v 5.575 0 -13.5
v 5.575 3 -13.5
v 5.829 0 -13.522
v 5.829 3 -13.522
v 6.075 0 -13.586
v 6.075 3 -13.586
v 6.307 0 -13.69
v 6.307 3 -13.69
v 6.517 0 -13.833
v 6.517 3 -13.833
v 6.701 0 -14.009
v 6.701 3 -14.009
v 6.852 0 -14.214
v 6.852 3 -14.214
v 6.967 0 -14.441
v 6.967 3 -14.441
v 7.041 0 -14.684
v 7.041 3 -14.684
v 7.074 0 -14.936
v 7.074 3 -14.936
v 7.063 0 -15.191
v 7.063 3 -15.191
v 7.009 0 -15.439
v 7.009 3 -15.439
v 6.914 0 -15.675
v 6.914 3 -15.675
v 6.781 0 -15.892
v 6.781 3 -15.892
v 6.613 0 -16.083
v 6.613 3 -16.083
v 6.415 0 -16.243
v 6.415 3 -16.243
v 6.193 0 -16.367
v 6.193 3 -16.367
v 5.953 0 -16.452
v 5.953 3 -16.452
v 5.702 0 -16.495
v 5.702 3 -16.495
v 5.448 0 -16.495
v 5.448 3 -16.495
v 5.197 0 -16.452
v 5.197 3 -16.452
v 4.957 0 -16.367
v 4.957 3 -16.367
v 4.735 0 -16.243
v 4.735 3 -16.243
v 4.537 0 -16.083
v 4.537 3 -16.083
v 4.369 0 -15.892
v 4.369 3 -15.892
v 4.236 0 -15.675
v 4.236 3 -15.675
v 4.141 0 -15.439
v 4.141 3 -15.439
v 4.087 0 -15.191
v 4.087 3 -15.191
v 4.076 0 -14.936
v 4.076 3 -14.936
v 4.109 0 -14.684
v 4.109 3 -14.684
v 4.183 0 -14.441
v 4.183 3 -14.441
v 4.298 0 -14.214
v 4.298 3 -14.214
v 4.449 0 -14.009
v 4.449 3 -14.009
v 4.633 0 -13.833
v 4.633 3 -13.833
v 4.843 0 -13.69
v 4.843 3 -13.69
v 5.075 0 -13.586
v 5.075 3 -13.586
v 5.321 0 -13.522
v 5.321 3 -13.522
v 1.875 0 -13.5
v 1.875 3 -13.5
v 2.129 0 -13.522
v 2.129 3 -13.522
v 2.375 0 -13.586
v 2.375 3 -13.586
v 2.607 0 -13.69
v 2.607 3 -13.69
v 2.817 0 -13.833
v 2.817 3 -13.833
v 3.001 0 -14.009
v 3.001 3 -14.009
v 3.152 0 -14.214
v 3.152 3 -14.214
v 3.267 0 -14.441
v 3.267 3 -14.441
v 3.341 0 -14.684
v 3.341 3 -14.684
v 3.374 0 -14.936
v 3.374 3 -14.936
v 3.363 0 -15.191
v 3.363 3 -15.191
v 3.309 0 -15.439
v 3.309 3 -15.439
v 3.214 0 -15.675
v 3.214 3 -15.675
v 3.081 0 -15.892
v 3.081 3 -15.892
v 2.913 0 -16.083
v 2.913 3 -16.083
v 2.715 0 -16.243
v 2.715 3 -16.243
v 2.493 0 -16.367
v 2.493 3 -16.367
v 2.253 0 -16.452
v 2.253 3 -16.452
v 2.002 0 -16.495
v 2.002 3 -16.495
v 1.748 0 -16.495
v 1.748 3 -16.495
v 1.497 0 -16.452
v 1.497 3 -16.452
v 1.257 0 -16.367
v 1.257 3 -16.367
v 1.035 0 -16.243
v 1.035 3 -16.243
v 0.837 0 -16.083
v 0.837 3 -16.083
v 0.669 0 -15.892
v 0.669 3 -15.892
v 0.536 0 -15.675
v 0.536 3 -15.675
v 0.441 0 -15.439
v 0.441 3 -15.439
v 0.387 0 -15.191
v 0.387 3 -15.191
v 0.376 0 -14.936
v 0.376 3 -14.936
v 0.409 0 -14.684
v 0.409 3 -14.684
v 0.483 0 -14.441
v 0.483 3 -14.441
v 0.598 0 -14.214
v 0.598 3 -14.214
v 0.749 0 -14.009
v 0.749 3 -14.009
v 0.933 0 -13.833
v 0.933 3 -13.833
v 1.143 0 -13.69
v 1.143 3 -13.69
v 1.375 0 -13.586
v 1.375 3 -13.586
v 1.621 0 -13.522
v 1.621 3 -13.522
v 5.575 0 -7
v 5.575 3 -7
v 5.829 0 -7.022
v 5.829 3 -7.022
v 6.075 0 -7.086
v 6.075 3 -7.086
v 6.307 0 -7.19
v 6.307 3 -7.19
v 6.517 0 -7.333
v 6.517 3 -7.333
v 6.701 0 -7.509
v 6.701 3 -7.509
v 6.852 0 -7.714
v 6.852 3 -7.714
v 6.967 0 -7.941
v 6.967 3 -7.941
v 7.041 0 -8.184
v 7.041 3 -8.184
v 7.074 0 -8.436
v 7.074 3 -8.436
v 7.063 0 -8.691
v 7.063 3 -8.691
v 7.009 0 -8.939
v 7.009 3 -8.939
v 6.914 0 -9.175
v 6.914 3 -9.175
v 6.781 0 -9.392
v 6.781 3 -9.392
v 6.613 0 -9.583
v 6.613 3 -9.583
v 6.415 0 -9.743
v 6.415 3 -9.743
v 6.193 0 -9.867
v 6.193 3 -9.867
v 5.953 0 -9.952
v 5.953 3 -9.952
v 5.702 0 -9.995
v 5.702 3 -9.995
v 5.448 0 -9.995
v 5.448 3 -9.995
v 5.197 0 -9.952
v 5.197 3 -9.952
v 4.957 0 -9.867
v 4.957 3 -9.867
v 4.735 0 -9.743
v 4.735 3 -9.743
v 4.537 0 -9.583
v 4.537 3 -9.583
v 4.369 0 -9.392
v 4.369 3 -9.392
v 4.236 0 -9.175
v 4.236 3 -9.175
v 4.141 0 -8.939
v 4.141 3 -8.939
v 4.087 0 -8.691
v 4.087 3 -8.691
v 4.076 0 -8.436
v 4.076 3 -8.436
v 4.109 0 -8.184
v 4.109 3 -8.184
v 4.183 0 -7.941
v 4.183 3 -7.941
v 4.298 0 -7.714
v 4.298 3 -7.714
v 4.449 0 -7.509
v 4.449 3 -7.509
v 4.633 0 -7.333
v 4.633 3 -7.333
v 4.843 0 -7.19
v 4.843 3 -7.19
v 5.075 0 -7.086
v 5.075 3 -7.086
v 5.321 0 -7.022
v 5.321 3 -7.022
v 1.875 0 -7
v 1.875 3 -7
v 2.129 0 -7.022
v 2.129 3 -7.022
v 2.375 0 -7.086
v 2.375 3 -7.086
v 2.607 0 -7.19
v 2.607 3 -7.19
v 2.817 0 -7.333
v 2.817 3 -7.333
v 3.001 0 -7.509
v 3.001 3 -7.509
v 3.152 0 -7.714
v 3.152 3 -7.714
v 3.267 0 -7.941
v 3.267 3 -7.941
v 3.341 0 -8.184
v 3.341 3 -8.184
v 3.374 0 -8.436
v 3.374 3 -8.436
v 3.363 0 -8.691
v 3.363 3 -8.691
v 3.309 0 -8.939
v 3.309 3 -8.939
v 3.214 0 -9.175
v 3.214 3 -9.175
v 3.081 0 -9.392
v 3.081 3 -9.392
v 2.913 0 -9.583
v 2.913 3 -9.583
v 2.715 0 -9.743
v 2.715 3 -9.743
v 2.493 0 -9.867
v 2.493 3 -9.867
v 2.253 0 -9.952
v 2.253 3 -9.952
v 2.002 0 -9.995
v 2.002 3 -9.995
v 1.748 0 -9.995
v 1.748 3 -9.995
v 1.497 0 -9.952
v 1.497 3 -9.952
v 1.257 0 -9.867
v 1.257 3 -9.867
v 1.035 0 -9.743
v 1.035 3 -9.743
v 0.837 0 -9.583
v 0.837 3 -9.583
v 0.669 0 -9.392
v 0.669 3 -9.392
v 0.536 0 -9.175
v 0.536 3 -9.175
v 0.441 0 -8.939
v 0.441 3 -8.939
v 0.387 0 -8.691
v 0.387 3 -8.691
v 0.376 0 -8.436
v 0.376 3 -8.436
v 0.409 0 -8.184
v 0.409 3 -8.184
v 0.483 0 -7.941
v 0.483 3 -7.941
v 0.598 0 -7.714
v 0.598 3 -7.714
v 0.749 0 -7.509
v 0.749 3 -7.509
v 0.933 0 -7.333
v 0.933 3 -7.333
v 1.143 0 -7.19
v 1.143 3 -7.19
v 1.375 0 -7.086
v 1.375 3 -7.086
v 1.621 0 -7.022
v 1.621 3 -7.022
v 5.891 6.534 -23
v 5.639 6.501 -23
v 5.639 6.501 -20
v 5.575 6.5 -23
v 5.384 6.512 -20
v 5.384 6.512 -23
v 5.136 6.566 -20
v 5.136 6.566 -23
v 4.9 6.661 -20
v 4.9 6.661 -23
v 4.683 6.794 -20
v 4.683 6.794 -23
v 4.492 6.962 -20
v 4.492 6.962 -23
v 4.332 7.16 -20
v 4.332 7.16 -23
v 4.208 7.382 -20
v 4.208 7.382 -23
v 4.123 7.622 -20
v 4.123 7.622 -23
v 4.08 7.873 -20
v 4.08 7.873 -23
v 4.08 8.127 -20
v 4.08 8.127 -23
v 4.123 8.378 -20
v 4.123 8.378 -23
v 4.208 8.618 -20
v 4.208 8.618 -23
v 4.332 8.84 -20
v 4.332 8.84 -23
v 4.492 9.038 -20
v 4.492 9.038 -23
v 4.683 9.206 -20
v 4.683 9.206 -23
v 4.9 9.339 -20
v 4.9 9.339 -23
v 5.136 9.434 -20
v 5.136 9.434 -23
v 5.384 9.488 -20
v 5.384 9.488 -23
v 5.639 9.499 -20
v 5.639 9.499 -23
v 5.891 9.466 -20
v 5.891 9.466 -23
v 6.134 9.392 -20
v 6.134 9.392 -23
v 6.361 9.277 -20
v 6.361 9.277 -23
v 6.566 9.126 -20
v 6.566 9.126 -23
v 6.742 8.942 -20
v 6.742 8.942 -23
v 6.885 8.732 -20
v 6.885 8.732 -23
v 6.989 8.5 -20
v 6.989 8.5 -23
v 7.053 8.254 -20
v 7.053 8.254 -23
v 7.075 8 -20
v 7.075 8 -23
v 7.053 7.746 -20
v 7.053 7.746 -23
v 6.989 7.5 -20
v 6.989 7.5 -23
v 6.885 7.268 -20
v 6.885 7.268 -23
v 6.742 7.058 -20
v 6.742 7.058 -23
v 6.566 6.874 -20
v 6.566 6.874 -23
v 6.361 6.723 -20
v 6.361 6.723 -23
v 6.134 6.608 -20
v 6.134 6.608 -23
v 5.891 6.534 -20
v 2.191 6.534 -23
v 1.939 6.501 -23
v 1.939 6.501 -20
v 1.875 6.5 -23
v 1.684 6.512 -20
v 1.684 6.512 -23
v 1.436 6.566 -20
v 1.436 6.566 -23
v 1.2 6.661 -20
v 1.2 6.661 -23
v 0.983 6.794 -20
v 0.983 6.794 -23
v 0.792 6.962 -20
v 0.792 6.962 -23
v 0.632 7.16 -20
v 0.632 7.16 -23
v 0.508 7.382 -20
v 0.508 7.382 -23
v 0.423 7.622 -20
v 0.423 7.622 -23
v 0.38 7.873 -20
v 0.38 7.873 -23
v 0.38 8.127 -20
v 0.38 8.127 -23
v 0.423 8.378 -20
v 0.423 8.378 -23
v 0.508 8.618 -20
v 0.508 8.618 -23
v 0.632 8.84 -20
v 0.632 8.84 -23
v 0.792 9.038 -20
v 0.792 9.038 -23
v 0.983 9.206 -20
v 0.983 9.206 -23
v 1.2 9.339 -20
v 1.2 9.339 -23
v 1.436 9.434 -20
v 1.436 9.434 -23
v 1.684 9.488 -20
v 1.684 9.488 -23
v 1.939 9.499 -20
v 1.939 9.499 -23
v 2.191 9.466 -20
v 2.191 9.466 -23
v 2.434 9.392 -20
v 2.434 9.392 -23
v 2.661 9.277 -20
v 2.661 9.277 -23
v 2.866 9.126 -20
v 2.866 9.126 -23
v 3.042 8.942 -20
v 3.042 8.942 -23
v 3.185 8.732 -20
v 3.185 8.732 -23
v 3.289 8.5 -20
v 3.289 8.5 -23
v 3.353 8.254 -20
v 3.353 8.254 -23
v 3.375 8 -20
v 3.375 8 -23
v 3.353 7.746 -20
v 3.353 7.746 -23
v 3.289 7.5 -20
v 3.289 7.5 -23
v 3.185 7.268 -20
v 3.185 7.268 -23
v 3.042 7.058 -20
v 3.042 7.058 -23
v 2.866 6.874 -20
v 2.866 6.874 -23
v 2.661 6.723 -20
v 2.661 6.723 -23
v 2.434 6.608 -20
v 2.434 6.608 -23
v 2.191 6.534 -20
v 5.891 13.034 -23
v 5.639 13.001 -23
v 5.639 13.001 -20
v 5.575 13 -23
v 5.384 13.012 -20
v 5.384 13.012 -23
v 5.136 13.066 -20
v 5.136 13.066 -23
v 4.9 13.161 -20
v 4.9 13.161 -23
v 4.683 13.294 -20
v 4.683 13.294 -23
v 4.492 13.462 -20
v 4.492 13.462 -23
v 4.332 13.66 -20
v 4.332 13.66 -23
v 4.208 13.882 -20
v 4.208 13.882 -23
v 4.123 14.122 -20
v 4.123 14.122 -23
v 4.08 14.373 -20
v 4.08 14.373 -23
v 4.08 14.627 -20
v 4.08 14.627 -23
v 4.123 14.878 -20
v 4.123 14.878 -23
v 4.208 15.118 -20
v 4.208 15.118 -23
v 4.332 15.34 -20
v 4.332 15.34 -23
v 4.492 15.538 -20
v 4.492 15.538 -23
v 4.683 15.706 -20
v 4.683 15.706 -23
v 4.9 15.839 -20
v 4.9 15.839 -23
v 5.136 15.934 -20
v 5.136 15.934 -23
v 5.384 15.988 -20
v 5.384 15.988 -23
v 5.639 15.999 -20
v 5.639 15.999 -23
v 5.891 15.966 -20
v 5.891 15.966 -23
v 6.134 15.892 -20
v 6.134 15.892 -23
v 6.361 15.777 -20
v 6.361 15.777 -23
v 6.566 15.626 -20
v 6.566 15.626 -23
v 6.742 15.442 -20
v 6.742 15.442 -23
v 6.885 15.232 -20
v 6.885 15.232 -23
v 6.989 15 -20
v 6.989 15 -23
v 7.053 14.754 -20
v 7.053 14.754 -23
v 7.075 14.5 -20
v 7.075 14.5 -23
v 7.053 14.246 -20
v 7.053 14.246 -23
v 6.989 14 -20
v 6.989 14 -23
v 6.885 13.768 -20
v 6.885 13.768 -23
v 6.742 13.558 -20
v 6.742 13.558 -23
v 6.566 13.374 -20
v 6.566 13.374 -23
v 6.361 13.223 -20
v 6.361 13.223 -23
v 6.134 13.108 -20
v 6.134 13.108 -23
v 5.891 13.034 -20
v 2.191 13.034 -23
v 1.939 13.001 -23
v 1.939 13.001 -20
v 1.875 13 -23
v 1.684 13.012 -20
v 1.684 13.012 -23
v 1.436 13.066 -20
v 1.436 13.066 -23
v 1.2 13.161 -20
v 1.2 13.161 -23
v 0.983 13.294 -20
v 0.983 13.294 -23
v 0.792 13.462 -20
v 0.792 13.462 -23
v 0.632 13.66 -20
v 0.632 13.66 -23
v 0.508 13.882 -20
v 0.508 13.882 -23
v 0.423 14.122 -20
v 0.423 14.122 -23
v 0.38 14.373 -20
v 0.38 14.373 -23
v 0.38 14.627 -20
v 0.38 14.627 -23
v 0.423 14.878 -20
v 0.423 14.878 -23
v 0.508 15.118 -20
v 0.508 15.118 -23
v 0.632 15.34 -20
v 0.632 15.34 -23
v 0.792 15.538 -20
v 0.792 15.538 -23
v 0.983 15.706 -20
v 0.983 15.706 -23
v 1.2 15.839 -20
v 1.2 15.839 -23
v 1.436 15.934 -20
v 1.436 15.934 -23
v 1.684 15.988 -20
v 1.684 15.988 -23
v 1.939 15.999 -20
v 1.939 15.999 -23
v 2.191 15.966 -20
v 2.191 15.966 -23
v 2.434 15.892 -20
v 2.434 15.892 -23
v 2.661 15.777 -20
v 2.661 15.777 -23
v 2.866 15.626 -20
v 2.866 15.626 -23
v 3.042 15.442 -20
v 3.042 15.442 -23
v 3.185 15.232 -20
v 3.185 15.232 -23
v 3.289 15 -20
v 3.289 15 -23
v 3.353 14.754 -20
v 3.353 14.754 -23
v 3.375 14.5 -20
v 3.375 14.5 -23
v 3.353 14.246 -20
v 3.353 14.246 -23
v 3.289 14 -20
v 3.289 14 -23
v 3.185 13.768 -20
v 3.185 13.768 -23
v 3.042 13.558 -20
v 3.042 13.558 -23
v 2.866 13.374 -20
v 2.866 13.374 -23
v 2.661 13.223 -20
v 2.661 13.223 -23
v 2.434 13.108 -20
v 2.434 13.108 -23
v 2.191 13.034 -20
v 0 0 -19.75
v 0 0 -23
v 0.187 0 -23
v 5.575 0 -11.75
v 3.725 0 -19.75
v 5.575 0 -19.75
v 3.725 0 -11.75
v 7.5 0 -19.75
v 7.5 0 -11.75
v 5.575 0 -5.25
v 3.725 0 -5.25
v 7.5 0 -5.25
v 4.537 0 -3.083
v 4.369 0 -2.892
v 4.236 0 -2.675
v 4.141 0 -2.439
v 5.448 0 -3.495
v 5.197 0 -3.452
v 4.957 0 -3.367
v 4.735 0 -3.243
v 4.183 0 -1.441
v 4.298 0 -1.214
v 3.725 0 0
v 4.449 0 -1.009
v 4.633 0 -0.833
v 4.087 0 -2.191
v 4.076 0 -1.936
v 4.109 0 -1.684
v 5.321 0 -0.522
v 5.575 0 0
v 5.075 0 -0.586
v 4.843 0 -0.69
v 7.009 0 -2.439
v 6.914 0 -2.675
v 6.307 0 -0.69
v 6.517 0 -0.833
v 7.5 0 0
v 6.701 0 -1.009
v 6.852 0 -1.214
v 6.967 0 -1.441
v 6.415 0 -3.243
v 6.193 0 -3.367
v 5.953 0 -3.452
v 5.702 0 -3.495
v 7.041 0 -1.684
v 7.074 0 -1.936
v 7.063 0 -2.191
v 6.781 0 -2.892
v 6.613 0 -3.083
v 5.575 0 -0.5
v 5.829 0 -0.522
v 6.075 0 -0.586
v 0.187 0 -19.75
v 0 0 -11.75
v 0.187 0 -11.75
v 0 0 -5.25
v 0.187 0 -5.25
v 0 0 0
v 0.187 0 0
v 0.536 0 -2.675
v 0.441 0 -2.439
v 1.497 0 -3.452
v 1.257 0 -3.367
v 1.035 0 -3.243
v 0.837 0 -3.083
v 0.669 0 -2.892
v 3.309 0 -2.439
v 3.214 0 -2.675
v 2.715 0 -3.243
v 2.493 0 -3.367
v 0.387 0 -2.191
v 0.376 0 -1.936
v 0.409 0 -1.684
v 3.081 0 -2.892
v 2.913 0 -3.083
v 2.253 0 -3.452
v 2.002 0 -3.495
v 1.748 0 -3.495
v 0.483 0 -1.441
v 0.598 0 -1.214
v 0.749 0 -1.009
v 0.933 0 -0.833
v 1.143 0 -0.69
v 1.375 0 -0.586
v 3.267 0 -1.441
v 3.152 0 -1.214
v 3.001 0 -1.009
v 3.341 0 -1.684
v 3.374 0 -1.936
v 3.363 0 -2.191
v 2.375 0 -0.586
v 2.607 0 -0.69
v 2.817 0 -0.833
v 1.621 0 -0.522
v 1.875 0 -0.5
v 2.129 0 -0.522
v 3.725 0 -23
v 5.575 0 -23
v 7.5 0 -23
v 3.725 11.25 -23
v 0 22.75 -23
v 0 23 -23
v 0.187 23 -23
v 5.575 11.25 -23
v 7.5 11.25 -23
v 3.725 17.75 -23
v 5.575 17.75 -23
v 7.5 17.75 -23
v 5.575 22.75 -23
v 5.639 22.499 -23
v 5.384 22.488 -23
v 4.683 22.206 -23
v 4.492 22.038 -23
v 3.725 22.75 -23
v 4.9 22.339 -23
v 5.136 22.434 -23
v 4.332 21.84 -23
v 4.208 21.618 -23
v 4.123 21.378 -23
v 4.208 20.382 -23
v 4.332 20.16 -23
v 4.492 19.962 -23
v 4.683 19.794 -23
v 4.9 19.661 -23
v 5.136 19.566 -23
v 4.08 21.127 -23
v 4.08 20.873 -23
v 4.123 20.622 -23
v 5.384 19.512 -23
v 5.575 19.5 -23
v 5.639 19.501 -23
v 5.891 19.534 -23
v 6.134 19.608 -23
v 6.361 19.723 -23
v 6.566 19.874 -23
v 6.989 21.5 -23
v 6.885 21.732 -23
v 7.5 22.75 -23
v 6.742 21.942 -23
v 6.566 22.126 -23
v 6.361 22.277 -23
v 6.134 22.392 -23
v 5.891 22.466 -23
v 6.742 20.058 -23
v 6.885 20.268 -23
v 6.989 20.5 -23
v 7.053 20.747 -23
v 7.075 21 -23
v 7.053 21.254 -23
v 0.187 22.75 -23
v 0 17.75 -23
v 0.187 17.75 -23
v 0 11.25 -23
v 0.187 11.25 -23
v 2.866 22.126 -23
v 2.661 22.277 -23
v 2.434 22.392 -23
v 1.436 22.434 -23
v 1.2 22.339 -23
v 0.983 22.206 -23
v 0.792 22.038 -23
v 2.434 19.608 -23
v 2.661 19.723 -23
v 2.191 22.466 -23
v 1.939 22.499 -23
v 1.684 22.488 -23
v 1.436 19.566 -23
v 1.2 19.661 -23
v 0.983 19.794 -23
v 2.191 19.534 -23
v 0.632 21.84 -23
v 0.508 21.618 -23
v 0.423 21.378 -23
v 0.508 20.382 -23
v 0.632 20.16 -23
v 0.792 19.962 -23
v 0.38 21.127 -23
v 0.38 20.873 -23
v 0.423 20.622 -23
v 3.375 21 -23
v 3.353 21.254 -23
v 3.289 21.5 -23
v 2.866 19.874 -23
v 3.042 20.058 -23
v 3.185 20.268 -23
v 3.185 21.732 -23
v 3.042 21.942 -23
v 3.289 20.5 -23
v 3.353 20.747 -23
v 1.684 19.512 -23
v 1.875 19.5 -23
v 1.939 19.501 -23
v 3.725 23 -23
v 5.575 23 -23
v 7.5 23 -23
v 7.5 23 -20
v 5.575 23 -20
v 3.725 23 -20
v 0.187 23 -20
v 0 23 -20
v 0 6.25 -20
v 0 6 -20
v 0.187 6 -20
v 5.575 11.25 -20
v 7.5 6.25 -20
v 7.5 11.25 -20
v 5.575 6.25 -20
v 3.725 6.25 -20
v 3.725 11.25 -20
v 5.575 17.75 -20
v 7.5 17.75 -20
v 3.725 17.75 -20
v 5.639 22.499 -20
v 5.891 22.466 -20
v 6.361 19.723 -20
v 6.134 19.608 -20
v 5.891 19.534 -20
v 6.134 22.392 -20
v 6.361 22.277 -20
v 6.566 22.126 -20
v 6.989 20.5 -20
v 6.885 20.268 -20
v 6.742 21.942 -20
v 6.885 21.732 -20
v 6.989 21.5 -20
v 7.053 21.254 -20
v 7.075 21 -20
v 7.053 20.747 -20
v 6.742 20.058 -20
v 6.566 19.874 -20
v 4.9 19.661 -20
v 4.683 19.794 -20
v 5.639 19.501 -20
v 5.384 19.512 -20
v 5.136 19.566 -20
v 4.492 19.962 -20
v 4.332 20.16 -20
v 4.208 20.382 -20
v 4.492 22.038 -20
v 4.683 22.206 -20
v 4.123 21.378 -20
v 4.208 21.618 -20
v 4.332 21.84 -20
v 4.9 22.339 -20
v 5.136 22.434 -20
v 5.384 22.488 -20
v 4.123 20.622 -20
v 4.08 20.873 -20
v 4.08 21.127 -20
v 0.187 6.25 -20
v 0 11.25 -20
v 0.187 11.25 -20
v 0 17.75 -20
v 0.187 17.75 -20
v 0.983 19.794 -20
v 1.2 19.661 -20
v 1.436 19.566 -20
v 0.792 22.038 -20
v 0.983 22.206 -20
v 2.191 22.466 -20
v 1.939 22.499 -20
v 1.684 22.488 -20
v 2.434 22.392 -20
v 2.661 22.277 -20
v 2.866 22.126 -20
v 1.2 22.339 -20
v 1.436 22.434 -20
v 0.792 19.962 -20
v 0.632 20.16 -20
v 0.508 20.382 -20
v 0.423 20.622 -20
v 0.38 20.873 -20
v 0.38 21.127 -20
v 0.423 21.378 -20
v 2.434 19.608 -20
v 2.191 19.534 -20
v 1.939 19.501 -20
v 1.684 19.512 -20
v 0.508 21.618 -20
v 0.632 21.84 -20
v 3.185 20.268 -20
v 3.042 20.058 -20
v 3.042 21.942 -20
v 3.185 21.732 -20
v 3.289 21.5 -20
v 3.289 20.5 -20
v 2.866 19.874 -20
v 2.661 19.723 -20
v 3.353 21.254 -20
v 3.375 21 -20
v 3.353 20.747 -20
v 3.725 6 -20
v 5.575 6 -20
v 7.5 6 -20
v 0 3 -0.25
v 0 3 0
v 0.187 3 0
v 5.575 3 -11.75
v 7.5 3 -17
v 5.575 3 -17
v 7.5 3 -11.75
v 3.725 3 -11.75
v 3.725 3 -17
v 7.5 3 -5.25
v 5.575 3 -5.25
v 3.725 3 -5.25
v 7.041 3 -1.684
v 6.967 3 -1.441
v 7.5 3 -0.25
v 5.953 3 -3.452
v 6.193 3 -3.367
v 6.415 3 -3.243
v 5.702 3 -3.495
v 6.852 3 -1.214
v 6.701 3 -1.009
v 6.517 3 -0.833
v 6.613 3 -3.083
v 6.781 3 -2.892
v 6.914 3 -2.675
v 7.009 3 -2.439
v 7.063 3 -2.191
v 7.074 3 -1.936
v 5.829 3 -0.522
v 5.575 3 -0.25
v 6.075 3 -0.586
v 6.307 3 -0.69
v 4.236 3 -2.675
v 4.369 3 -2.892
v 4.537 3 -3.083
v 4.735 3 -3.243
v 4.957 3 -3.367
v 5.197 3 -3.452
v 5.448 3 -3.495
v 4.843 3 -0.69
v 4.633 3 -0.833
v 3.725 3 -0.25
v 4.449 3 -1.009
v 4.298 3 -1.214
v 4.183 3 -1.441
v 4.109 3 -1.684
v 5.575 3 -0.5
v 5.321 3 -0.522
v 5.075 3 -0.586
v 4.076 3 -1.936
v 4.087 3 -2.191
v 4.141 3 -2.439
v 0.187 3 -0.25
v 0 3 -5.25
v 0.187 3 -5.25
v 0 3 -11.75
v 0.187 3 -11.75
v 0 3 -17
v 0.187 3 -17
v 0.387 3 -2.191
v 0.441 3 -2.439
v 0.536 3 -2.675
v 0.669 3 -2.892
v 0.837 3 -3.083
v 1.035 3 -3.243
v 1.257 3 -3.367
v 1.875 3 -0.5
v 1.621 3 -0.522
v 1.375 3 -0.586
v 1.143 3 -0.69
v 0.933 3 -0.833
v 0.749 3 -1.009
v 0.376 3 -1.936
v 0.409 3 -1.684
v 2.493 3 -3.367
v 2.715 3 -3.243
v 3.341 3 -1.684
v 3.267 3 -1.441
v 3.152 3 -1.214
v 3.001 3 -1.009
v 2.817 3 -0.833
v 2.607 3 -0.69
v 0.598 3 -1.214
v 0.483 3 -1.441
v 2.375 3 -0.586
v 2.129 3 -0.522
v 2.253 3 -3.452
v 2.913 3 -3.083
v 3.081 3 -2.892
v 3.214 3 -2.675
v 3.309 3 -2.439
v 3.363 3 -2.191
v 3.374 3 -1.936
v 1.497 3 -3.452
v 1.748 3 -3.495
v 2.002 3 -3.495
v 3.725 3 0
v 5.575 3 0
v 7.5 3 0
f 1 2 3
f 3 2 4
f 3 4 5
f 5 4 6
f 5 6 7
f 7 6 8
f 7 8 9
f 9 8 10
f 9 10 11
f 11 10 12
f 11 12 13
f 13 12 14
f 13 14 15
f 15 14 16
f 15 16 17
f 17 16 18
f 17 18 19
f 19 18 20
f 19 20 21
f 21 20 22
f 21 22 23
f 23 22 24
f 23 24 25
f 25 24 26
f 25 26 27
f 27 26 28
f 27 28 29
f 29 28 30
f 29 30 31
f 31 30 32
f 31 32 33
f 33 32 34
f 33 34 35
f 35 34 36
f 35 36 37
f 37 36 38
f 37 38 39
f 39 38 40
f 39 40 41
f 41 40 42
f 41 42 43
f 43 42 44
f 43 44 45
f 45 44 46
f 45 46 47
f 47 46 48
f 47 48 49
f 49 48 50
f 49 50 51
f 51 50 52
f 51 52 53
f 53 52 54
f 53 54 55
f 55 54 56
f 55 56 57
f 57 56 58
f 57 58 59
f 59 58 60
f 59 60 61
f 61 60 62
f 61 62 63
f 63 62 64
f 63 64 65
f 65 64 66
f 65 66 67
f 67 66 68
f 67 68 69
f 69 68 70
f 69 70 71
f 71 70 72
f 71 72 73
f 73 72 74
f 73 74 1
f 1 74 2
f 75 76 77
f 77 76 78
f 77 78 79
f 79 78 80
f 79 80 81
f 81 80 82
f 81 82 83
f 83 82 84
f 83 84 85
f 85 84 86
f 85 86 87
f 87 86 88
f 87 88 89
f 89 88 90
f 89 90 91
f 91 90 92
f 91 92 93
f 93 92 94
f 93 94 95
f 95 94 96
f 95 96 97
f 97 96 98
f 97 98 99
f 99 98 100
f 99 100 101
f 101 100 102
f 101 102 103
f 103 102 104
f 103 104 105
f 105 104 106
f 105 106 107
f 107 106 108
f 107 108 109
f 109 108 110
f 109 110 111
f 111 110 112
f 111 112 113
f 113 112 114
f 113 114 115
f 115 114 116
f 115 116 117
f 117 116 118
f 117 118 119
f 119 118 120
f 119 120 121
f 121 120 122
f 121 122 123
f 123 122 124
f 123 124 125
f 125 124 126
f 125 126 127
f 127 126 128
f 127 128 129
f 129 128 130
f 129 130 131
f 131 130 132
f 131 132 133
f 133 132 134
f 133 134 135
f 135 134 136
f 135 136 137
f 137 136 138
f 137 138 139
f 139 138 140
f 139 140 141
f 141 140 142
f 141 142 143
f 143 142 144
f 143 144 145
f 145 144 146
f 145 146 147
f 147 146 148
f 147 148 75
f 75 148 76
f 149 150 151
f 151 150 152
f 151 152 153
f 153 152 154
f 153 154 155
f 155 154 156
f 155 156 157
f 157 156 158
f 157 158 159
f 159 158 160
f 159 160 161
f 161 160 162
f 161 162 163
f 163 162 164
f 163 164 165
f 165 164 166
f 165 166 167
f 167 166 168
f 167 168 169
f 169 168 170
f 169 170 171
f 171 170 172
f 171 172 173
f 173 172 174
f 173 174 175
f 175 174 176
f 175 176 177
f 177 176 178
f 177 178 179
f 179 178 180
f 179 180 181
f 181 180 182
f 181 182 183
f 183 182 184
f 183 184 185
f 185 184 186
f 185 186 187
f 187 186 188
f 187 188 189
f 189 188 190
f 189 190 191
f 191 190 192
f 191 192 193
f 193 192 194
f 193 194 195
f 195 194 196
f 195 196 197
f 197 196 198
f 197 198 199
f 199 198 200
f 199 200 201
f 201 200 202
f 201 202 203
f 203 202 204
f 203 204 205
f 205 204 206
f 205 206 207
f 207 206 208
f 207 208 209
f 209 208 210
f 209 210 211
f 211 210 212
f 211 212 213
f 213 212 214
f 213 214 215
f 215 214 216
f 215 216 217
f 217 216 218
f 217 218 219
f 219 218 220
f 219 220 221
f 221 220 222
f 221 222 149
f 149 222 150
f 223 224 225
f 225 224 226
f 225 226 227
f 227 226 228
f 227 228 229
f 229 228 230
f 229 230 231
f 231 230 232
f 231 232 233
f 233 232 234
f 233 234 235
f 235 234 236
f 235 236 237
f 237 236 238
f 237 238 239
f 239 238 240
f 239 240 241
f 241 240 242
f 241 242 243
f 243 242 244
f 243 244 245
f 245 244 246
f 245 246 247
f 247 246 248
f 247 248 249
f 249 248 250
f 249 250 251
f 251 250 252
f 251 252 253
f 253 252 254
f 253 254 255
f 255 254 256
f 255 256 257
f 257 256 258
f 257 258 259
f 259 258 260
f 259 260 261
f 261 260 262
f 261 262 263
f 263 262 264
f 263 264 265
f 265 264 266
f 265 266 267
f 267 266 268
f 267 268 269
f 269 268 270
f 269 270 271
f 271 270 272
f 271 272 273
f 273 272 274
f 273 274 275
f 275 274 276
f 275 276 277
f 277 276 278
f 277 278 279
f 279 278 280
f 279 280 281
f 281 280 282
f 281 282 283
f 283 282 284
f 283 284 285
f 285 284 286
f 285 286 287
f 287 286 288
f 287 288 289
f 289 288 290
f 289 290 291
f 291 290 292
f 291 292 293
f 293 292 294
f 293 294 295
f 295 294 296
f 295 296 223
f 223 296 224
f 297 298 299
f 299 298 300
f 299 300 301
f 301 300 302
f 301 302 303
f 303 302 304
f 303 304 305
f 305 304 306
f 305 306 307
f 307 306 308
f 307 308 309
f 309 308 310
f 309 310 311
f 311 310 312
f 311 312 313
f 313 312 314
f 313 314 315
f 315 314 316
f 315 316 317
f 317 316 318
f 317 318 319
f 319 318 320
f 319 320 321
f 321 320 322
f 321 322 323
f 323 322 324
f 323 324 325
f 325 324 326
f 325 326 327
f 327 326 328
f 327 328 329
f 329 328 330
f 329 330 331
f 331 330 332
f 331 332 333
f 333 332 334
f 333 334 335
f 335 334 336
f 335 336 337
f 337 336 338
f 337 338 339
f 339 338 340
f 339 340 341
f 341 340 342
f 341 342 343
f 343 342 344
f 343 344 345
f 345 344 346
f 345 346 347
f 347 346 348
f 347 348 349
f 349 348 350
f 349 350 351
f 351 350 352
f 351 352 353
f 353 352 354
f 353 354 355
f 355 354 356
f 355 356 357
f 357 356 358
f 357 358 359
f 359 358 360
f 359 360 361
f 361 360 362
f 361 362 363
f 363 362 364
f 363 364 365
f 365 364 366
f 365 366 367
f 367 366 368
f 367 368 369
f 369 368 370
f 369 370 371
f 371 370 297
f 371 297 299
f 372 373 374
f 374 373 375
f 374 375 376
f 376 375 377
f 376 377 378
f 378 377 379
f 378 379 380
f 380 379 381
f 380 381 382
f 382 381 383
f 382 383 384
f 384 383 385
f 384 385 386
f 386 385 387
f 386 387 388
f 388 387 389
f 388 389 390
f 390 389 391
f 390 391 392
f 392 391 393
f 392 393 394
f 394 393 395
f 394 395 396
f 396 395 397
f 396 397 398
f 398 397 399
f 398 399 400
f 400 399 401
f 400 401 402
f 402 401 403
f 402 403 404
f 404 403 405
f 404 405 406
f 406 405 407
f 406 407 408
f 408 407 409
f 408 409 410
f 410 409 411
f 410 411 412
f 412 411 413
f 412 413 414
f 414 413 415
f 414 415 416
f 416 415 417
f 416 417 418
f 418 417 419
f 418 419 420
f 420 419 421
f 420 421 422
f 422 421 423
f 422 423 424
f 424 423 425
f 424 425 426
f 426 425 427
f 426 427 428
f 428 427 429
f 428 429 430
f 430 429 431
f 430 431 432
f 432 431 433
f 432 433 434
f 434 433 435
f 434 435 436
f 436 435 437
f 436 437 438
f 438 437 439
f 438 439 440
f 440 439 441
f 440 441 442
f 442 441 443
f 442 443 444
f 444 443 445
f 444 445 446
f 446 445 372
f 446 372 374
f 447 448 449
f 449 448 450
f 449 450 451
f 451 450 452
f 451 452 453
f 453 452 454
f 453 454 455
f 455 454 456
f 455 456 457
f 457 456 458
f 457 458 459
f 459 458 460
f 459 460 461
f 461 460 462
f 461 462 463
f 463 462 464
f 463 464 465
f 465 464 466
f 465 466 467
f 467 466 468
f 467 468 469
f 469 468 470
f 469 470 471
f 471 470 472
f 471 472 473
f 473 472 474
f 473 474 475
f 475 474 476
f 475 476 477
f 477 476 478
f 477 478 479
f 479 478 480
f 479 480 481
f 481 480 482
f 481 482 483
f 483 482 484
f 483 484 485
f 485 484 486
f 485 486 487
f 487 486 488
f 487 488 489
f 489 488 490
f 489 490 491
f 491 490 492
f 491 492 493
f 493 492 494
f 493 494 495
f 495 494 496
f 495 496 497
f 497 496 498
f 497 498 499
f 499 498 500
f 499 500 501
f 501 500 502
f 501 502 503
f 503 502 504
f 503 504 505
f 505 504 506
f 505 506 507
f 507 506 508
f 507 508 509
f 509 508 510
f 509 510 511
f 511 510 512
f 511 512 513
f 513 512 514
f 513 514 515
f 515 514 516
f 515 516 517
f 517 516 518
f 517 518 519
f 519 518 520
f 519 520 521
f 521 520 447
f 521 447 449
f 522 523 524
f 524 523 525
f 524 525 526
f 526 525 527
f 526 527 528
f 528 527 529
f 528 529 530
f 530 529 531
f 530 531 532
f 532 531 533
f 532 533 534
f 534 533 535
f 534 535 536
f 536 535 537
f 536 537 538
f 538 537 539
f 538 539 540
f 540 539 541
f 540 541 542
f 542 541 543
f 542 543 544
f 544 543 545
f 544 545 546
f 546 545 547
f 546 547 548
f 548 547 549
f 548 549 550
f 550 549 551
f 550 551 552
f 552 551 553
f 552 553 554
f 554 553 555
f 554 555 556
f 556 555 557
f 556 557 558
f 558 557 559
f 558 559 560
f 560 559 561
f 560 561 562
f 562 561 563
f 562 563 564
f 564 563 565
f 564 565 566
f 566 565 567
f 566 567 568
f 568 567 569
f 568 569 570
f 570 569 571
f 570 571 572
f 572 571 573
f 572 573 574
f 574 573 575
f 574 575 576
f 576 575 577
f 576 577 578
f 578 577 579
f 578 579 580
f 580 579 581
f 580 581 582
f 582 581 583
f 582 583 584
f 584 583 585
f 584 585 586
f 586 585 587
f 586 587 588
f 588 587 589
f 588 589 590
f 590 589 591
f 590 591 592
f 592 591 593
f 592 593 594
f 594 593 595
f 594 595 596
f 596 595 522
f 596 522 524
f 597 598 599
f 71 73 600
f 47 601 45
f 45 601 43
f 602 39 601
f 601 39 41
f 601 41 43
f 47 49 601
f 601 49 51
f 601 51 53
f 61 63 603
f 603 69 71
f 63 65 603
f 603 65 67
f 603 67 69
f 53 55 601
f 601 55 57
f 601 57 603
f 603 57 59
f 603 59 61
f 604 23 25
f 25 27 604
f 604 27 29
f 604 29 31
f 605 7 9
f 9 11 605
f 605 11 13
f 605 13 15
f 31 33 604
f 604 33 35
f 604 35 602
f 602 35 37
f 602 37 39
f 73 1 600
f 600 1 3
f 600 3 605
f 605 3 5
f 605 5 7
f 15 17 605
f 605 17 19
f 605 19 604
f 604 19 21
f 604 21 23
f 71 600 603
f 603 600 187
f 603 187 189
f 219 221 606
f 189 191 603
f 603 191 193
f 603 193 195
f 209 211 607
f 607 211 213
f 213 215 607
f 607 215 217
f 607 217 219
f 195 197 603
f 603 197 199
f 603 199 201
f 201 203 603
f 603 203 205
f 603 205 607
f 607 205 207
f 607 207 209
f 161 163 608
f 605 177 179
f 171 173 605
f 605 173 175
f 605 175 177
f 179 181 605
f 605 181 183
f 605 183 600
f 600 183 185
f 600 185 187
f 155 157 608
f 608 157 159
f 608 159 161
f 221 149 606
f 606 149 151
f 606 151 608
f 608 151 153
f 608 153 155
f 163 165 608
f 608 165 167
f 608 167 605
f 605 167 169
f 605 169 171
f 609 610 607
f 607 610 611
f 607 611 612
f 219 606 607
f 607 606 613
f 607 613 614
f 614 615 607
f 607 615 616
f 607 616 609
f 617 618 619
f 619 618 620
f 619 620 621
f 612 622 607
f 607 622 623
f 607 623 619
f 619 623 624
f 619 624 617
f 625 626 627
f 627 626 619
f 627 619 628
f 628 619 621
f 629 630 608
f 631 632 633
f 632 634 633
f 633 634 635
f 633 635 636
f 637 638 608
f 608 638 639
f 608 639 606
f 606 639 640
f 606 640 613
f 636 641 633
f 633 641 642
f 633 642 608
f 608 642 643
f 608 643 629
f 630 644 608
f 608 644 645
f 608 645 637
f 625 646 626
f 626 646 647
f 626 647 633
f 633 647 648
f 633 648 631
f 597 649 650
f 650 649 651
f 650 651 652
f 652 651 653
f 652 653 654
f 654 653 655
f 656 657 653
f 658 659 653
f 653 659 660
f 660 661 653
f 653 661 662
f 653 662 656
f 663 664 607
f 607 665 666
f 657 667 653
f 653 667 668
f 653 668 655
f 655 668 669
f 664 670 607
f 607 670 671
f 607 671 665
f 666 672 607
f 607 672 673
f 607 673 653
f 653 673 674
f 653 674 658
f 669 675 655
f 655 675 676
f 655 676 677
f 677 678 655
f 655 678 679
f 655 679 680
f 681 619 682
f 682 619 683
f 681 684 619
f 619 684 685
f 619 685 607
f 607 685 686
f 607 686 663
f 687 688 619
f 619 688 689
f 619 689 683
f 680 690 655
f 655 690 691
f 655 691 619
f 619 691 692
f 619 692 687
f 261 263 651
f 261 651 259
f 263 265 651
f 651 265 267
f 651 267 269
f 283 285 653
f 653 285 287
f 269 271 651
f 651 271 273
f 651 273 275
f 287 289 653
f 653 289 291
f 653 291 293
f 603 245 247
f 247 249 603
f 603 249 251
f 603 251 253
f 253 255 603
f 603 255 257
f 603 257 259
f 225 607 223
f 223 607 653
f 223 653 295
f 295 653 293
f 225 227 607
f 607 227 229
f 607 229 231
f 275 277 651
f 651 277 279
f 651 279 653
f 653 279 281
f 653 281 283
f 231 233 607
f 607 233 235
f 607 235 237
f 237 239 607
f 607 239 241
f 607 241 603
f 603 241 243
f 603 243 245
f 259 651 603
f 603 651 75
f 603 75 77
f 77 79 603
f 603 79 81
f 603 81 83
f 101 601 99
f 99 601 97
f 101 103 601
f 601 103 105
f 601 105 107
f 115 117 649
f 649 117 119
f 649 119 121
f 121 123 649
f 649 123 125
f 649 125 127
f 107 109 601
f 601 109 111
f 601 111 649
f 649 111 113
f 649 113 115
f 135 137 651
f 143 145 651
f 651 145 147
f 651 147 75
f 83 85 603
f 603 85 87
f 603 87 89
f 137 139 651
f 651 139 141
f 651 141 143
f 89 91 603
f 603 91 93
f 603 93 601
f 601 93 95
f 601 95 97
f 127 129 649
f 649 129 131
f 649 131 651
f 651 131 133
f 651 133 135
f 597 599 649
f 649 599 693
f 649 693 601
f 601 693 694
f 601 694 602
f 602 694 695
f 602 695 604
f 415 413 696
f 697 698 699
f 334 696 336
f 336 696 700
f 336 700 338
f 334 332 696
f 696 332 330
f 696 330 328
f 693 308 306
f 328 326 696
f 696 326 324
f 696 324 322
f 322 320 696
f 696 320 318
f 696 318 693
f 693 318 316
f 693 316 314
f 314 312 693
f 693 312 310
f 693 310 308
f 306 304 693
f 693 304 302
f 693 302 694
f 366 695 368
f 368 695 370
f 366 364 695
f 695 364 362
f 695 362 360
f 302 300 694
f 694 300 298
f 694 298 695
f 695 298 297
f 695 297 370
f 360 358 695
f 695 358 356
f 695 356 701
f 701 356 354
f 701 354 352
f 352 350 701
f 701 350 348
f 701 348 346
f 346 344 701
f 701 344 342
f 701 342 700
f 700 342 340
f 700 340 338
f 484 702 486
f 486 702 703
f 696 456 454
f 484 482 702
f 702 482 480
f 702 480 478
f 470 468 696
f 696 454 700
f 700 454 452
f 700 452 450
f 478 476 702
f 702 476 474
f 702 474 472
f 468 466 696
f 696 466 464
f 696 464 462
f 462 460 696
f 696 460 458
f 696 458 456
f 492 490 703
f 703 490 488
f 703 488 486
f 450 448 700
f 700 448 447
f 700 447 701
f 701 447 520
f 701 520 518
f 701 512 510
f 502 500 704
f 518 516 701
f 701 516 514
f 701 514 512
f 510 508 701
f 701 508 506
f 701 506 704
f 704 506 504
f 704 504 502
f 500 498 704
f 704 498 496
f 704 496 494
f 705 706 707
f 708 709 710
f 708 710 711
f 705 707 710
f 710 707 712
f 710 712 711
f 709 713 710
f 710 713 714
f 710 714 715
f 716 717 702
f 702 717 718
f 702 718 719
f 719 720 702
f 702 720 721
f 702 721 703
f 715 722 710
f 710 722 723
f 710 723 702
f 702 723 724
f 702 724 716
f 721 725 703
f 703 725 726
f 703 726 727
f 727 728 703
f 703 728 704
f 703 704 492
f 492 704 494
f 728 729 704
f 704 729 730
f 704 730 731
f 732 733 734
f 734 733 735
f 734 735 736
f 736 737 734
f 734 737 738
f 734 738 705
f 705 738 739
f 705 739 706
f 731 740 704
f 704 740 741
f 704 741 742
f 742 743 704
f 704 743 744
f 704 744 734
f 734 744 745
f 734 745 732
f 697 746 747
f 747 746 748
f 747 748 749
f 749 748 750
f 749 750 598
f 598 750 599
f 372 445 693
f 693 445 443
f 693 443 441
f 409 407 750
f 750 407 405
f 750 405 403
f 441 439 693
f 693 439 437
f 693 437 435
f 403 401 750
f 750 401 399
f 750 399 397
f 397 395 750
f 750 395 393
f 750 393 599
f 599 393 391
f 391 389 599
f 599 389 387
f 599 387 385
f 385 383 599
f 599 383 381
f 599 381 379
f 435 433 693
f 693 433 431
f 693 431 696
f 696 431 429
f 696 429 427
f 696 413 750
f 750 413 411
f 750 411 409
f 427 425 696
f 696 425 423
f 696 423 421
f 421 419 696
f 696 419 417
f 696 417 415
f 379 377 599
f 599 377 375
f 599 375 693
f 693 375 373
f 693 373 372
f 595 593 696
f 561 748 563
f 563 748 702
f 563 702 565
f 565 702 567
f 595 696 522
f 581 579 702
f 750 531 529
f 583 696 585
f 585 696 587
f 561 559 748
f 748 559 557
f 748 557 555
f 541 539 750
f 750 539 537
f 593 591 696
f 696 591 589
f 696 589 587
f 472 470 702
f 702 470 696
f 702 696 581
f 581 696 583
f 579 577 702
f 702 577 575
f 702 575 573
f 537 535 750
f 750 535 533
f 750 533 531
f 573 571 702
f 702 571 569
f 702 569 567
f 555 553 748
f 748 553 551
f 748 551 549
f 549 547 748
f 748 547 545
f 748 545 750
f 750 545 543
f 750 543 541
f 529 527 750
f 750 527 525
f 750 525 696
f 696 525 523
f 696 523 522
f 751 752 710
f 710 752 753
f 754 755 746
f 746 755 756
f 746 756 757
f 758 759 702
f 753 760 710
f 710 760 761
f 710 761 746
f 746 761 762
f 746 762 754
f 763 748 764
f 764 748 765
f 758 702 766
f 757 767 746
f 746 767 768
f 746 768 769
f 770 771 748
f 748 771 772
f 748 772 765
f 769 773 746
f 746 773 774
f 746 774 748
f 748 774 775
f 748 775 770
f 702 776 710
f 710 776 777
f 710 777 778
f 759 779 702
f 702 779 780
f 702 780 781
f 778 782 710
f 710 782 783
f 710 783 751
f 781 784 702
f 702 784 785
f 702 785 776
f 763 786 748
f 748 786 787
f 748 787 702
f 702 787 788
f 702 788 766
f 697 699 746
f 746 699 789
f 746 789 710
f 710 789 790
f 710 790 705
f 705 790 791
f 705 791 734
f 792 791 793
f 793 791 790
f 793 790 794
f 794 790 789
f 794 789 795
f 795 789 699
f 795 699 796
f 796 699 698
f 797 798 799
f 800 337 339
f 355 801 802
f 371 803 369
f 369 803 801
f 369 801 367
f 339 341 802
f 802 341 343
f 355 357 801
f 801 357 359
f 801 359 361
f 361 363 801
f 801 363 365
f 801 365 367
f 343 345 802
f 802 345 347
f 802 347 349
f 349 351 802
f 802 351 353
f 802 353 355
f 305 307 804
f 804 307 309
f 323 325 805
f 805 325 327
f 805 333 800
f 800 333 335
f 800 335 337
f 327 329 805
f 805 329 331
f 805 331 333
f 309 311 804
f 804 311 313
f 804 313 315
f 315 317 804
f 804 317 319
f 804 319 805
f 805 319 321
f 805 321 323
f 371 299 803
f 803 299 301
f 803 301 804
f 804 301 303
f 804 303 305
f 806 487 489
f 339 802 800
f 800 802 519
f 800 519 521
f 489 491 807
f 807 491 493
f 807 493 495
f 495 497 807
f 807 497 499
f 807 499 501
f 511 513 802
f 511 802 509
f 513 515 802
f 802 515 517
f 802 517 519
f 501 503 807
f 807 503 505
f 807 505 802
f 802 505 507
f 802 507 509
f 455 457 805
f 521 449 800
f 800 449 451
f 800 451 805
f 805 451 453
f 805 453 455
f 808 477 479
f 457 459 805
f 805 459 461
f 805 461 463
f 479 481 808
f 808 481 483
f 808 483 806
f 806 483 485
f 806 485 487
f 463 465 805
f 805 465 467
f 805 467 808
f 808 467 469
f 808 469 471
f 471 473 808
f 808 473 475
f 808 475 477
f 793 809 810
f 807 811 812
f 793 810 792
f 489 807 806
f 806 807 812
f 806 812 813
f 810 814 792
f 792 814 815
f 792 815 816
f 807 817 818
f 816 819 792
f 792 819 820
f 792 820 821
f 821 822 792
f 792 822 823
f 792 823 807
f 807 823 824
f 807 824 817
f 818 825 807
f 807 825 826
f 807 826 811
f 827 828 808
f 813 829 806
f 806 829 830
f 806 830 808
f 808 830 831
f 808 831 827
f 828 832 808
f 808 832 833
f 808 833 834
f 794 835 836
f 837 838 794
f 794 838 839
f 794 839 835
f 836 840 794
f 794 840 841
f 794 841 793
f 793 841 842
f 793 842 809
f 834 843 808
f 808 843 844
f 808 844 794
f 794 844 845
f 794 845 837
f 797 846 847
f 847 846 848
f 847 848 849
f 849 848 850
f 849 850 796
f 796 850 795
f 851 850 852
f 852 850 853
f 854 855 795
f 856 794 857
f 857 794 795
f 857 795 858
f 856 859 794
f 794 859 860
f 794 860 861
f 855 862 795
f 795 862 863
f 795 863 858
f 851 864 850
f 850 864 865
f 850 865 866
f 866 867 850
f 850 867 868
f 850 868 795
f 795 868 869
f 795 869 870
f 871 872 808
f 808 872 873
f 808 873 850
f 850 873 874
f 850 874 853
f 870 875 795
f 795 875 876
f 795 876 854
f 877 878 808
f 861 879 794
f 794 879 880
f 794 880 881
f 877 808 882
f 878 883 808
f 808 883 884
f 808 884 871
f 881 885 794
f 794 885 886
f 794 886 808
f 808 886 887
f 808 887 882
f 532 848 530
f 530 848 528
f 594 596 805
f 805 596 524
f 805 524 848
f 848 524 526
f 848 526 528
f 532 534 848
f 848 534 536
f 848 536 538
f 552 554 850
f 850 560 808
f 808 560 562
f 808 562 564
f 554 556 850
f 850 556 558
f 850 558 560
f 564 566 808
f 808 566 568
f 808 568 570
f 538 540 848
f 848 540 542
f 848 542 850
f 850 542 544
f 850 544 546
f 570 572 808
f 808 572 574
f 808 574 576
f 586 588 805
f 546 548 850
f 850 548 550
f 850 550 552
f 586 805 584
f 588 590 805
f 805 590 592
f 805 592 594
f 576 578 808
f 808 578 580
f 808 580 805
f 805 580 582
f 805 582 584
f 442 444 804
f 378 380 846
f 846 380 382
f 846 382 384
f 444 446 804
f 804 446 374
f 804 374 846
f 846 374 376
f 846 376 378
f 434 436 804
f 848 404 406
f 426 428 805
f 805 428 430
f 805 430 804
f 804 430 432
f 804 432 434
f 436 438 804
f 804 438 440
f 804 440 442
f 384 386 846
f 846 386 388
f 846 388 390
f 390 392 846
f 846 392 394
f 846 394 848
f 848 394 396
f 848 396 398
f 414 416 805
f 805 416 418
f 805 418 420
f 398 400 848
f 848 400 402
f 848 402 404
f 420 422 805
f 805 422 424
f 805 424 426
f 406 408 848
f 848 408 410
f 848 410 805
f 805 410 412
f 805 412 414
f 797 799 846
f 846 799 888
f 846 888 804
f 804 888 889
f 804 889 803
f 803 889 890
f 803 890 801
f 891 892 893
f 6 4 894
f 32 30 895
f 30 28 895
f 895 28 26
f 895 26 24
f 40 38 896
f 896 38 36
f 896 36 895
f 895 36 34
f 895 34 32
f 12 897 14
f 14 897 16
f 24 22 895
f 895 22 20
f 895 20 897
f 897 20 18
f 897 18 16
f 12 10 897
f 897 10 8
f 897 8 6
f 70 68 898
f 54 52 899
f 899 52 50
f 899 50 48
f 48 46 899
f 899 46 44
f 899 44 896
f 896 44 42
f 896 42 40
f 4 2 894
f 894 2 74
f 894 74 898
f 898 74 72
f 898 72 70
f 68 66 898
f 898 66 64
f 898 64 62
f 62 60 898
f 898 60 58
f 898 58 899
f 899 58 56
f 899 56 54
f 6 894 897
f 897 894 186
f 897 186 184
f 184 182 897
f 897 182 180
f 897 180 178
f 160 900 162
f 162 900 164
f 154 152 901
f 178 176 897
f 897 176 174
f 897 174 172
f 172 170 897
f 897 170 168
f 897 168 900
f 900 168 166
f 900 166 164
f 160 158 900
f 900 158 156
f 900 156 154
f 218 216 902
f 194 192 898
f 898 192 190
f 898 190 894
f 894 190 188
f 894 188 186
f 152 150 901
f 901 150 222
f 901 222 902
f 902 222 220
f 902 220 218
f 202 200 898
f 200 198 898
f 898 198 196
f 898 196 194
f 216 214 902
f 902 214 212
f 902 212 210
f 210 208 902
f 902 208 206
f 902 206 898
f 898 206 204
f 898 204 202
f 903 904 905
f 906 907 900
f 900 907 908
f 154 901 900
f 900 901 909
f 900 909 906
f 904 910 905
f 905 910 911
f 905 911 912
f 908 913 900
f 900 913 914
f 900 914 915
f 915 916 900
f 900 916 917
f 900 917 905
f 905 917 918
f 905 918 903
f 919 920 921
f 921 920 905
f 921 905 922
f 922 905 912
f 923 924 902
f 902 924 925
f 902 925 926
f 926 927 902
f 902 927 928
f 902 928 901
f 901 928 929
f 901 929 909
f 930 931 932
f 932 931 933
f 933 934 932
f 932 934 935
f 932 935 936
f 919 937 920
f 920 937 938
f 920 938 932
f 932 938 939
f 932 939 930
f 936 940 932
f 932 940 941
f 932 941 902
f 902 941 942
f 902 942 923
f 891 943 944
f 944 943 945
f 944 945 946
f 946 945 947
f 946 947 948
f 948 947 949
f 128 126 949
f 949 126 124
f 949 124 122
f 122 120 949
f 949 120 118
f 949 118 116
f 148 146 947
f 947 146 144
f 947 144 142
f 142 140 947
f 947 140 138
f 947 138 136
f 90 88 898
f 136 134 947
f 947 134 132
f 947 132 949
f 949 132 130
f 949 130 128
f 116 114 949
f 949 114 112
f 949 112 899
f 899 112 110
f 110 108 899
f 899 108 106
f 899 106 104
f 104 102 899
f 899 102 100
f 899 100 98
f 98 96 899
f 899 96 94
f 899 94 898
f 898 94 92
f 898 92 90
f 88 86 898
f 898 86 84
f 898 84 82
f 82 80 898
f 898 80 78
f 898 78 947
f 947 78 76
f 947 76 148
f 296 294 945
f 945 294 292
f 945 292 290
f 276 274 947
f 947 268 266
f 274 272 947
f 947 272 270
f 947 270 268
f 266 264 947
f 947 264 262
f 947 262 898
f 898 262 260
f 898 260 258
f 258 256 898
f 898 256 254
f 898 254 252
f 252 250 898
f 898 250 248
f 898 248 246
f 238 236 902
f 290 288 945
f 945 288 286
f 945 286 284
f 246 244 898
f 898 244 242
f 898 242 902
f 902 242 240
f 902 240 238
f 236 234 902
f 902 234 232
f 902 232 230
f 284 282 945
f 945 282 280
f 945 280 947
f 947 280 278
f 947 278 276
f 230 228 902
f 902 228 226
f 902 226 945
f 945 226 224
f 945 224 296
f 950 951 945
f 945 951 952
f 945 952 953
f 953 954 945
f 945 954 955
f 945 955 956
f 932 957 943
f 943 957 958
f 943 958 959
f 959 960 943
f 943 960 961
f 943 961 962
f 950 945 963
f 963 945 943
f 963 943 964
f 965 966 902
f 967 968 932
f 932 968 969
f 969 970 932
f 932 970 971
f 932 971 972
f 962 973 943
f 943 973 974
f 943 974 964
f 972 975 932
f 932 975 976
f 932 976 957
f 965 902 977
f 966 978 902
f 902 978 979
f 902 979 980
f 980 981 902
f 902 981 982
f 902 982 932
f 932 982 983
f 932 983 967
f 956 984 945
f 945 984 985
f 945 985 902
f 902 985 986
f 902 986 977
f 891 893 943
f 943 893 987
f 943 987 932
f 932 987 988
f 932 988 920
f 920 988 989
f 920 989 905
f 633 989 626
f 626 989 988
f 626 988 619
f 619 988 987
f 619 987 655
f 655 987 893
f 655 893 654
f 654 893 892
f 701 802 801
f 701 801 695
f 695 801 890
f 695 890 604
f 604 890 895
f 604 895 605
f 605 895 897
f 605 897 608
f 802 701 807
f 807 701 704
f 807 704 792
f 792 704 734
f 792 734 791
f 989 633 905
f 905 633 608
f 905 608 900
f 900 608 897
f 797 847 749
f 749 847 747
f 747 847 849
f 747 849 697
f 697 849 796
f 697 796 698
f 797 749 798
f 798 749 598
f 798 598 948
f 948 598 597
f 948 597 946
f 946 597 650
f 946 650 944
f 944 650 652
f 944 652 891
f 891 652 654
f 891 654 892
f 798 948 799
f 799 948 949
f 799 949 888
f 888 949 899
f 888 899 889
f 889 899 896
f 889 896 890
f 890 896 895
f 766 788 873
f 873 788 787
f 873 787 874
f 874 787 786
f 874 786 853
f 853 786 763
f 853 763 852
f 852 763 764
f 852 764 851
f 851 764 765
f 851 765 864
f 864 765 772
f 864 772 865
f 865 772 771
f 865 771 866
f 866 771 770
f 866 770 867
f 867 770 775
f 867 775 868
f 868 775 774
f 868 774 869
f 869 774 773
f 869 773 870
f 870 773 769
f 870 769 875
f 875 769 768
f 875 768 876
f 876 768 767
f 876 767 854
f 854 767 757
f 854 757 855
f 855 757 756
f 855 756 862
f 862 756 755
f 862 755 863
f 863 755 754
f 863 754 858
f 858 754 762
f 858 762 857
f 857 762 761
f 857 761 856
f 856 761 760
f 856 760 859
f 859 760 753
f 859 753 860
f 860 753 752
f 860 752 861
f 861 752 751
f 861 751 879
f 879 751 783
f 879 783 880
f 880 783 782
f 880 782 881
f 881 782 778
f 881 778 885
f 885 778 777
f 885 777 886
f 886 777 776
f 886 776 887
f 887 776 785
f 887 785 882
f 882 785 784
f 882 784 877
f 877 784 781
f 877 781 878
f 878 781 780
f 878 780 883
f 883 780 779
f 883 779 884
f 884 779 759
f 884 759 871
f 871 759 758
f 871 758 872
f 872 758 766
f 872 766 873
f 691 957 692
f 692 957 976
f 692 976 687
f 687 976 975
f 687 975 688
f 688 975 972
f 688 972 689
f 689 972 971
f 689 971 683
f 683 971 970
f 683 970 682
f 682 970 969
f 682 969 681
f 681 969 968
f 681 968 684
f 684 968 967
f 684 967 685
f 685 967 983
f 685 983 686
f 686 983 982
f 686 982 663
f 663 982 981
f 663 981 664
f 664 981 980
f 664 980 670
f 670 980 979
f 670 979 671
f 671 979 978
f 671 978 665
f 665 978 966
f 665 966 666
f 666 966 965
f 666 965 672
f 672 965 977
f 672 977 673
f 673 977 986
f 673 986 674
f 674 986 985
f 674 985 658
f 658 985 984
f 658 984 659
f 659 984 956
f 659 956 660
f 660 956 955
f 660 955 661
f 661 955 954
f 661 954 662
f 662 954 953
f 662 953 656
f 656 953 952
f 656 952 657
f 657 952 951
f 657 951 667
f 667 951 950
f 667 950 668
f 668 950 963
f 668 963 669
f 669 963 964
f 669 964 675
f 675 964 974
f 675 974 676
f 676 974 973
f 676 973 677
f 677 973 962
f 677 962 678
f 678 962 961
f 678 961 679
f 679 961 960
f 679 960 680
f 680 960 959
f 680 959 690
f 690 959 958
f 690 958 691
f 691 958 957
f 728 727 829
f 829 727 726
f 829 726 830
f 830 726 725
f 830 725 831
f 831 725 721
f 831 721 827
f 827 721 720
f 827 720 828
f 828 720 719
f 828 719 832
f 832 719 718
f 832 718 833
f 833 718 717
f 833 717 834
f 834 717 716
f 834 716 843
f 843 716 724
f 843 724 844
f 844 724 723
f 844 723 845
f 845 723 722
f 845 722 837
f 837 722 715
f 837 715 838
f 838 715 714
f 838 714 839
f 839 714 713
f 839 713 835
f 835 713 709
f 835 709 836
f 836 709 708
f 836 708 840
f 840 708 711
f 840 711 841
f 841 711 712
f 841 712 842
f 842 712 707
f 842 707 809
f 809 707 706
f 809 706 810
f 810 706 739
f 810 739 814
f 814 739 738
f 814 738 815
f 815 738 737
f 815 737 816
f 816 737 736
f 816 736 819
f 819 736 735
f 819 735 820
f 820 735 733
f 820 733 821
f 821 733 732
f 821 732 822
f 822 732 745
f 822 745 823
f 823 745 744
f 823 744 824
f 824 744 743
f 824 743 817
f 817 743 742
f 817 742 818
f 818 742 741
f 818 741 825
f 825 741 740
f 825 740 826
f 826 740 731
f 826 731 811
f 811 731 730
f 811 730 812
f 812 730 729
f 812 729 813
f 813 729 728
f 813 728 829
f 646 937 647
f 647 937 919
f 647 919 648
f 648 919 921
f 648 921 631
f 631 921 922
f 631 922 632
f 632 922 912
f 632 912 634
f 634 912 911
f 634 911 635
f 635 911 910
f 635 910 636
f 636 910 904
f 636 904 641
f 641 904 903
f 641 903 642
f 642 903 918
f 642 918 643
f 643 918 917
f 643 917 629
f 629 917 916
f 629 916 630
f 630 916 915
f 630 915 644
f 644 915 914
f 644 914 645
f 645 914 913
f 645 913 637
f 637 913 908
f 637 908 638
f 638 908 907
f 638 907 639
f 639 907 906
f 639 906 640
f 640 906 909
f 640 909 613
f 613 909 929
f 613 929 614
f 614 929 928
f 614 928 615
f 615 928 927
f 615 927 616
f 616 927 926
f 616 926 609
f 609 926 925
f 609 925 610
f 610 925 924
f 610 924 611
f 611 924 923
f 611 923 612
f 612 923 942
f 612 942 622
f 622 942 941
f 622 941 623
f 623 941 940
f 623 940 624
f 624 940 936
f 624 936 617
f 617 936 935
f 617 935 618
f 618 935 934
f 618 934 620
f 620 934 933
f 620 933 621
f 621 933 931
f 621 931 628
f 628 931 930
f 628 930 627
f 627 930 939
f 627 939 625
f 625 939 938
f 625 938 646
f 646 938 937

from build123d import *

# Parameters (mm, degrees)
BOSS_EXTRUDE1_DEPTH  = 7.5
CHAMFER1_SIZE        = 3
SKETCH3_R            = 1.5
CUT_EXTRUDE1_DEPTH   = 10
SKETCH4_R            = 1.5
CUT_EXTRUDE2_DEPTH   = 10
LPATTERN1_COUNT      = 2
LPATTERN1_PITCH      = 3.7
LPATTERN1_COUNT_DIR2 = 5
LPATTERN1_PITCH_DIR2 = 3.25
LPATTERN2_COUNT      = 2
LPATTERN2_PITCH      = 3.7
LPATTERN2_COUNT_DIR2 = 5
LPATTERN2_PITCH_DIR2 = 3.25


with BuildPart() as part:
    # Sketch1 → Boss-Extrude1 (new body)
    with BuildSketch(Plane(origin=(0, 0, 0), x_dir=(0, 0, -1), z_dir=(1, 0, 0))):
        Polygon((0, 0), (0, 3), (20, 3), (20, 23), (23, 23), (23, 0), align=None)
    extrude(amount=BOSS_EXTRUDE1_DEPTH)

    # Chamfer1
    chamfer1_edges = [part.edges().sort_by_distance(p)[0] for p in [
        (3.75, 3, -20),
    ]]
    chamfer(chamfer1_edges, length=CHAMFER1_SIZE)

    # Sketch3 → Cut-Extrude1 (cut)
    with BuildSketch(Plane.XY.offset(-20)):
        with Locations((1.875, 21)):
            Circle(SKETCH3_R)
    cut_extrude1 = extrude(amount=-CUT_EXTRUDE1_DEPTH, mode=Mode.SUBTRACT)

    # Sketch4 → Cut-Extrude2 (cut)
    with BuildSketch(Plane(origin=(0, 3, 0), x_dir=(1, 0, 0), z_dir=(0, 1, 0))):
        with Locations(Location((1.875, 2, 0), (0, 0, 270))):
            Circle(SKETCH4_R)
    cut_extrude2 = extrude(amount=-CUT_EXTRUDE2_DEPTH, mode=Mode.SUBTRACT)

    # LPattern1: Cut-Extrude1 2 × 5, 4 skipped
    with Locations(*[(i * LPATTERN1_PITCH, -j * LPATTERN1_PITCH_DIR2, 0) for i in range(LPATTERN1_COUNT) for j in range(LPATTERN1_COUNT_DIR2) if (i, j) not in ((0, 0), (0, 1), (0, 3), (1, 1), (1, 3))]):
        add(cut_extrude1, mode=Mode.SUBTRACT)

    # LPattern2: Cut-Extrude2 2 × 5, 4 skipped
    with Locations(*[(i * LPATTERN2_PITCH, 0, -j * LPATTERN2_PITCH_DIR2) for i in range(LPATTERN2_COUNT) for j in range(LPATTERN2_COUNT_DIR2) if (i, j) not in ((0, 0), (0, 1), (0, 3), (1, 1), (1, 3))]):
        add(cut_extrude2, mode=Mode.SUBTRACT)


solid = part.part
